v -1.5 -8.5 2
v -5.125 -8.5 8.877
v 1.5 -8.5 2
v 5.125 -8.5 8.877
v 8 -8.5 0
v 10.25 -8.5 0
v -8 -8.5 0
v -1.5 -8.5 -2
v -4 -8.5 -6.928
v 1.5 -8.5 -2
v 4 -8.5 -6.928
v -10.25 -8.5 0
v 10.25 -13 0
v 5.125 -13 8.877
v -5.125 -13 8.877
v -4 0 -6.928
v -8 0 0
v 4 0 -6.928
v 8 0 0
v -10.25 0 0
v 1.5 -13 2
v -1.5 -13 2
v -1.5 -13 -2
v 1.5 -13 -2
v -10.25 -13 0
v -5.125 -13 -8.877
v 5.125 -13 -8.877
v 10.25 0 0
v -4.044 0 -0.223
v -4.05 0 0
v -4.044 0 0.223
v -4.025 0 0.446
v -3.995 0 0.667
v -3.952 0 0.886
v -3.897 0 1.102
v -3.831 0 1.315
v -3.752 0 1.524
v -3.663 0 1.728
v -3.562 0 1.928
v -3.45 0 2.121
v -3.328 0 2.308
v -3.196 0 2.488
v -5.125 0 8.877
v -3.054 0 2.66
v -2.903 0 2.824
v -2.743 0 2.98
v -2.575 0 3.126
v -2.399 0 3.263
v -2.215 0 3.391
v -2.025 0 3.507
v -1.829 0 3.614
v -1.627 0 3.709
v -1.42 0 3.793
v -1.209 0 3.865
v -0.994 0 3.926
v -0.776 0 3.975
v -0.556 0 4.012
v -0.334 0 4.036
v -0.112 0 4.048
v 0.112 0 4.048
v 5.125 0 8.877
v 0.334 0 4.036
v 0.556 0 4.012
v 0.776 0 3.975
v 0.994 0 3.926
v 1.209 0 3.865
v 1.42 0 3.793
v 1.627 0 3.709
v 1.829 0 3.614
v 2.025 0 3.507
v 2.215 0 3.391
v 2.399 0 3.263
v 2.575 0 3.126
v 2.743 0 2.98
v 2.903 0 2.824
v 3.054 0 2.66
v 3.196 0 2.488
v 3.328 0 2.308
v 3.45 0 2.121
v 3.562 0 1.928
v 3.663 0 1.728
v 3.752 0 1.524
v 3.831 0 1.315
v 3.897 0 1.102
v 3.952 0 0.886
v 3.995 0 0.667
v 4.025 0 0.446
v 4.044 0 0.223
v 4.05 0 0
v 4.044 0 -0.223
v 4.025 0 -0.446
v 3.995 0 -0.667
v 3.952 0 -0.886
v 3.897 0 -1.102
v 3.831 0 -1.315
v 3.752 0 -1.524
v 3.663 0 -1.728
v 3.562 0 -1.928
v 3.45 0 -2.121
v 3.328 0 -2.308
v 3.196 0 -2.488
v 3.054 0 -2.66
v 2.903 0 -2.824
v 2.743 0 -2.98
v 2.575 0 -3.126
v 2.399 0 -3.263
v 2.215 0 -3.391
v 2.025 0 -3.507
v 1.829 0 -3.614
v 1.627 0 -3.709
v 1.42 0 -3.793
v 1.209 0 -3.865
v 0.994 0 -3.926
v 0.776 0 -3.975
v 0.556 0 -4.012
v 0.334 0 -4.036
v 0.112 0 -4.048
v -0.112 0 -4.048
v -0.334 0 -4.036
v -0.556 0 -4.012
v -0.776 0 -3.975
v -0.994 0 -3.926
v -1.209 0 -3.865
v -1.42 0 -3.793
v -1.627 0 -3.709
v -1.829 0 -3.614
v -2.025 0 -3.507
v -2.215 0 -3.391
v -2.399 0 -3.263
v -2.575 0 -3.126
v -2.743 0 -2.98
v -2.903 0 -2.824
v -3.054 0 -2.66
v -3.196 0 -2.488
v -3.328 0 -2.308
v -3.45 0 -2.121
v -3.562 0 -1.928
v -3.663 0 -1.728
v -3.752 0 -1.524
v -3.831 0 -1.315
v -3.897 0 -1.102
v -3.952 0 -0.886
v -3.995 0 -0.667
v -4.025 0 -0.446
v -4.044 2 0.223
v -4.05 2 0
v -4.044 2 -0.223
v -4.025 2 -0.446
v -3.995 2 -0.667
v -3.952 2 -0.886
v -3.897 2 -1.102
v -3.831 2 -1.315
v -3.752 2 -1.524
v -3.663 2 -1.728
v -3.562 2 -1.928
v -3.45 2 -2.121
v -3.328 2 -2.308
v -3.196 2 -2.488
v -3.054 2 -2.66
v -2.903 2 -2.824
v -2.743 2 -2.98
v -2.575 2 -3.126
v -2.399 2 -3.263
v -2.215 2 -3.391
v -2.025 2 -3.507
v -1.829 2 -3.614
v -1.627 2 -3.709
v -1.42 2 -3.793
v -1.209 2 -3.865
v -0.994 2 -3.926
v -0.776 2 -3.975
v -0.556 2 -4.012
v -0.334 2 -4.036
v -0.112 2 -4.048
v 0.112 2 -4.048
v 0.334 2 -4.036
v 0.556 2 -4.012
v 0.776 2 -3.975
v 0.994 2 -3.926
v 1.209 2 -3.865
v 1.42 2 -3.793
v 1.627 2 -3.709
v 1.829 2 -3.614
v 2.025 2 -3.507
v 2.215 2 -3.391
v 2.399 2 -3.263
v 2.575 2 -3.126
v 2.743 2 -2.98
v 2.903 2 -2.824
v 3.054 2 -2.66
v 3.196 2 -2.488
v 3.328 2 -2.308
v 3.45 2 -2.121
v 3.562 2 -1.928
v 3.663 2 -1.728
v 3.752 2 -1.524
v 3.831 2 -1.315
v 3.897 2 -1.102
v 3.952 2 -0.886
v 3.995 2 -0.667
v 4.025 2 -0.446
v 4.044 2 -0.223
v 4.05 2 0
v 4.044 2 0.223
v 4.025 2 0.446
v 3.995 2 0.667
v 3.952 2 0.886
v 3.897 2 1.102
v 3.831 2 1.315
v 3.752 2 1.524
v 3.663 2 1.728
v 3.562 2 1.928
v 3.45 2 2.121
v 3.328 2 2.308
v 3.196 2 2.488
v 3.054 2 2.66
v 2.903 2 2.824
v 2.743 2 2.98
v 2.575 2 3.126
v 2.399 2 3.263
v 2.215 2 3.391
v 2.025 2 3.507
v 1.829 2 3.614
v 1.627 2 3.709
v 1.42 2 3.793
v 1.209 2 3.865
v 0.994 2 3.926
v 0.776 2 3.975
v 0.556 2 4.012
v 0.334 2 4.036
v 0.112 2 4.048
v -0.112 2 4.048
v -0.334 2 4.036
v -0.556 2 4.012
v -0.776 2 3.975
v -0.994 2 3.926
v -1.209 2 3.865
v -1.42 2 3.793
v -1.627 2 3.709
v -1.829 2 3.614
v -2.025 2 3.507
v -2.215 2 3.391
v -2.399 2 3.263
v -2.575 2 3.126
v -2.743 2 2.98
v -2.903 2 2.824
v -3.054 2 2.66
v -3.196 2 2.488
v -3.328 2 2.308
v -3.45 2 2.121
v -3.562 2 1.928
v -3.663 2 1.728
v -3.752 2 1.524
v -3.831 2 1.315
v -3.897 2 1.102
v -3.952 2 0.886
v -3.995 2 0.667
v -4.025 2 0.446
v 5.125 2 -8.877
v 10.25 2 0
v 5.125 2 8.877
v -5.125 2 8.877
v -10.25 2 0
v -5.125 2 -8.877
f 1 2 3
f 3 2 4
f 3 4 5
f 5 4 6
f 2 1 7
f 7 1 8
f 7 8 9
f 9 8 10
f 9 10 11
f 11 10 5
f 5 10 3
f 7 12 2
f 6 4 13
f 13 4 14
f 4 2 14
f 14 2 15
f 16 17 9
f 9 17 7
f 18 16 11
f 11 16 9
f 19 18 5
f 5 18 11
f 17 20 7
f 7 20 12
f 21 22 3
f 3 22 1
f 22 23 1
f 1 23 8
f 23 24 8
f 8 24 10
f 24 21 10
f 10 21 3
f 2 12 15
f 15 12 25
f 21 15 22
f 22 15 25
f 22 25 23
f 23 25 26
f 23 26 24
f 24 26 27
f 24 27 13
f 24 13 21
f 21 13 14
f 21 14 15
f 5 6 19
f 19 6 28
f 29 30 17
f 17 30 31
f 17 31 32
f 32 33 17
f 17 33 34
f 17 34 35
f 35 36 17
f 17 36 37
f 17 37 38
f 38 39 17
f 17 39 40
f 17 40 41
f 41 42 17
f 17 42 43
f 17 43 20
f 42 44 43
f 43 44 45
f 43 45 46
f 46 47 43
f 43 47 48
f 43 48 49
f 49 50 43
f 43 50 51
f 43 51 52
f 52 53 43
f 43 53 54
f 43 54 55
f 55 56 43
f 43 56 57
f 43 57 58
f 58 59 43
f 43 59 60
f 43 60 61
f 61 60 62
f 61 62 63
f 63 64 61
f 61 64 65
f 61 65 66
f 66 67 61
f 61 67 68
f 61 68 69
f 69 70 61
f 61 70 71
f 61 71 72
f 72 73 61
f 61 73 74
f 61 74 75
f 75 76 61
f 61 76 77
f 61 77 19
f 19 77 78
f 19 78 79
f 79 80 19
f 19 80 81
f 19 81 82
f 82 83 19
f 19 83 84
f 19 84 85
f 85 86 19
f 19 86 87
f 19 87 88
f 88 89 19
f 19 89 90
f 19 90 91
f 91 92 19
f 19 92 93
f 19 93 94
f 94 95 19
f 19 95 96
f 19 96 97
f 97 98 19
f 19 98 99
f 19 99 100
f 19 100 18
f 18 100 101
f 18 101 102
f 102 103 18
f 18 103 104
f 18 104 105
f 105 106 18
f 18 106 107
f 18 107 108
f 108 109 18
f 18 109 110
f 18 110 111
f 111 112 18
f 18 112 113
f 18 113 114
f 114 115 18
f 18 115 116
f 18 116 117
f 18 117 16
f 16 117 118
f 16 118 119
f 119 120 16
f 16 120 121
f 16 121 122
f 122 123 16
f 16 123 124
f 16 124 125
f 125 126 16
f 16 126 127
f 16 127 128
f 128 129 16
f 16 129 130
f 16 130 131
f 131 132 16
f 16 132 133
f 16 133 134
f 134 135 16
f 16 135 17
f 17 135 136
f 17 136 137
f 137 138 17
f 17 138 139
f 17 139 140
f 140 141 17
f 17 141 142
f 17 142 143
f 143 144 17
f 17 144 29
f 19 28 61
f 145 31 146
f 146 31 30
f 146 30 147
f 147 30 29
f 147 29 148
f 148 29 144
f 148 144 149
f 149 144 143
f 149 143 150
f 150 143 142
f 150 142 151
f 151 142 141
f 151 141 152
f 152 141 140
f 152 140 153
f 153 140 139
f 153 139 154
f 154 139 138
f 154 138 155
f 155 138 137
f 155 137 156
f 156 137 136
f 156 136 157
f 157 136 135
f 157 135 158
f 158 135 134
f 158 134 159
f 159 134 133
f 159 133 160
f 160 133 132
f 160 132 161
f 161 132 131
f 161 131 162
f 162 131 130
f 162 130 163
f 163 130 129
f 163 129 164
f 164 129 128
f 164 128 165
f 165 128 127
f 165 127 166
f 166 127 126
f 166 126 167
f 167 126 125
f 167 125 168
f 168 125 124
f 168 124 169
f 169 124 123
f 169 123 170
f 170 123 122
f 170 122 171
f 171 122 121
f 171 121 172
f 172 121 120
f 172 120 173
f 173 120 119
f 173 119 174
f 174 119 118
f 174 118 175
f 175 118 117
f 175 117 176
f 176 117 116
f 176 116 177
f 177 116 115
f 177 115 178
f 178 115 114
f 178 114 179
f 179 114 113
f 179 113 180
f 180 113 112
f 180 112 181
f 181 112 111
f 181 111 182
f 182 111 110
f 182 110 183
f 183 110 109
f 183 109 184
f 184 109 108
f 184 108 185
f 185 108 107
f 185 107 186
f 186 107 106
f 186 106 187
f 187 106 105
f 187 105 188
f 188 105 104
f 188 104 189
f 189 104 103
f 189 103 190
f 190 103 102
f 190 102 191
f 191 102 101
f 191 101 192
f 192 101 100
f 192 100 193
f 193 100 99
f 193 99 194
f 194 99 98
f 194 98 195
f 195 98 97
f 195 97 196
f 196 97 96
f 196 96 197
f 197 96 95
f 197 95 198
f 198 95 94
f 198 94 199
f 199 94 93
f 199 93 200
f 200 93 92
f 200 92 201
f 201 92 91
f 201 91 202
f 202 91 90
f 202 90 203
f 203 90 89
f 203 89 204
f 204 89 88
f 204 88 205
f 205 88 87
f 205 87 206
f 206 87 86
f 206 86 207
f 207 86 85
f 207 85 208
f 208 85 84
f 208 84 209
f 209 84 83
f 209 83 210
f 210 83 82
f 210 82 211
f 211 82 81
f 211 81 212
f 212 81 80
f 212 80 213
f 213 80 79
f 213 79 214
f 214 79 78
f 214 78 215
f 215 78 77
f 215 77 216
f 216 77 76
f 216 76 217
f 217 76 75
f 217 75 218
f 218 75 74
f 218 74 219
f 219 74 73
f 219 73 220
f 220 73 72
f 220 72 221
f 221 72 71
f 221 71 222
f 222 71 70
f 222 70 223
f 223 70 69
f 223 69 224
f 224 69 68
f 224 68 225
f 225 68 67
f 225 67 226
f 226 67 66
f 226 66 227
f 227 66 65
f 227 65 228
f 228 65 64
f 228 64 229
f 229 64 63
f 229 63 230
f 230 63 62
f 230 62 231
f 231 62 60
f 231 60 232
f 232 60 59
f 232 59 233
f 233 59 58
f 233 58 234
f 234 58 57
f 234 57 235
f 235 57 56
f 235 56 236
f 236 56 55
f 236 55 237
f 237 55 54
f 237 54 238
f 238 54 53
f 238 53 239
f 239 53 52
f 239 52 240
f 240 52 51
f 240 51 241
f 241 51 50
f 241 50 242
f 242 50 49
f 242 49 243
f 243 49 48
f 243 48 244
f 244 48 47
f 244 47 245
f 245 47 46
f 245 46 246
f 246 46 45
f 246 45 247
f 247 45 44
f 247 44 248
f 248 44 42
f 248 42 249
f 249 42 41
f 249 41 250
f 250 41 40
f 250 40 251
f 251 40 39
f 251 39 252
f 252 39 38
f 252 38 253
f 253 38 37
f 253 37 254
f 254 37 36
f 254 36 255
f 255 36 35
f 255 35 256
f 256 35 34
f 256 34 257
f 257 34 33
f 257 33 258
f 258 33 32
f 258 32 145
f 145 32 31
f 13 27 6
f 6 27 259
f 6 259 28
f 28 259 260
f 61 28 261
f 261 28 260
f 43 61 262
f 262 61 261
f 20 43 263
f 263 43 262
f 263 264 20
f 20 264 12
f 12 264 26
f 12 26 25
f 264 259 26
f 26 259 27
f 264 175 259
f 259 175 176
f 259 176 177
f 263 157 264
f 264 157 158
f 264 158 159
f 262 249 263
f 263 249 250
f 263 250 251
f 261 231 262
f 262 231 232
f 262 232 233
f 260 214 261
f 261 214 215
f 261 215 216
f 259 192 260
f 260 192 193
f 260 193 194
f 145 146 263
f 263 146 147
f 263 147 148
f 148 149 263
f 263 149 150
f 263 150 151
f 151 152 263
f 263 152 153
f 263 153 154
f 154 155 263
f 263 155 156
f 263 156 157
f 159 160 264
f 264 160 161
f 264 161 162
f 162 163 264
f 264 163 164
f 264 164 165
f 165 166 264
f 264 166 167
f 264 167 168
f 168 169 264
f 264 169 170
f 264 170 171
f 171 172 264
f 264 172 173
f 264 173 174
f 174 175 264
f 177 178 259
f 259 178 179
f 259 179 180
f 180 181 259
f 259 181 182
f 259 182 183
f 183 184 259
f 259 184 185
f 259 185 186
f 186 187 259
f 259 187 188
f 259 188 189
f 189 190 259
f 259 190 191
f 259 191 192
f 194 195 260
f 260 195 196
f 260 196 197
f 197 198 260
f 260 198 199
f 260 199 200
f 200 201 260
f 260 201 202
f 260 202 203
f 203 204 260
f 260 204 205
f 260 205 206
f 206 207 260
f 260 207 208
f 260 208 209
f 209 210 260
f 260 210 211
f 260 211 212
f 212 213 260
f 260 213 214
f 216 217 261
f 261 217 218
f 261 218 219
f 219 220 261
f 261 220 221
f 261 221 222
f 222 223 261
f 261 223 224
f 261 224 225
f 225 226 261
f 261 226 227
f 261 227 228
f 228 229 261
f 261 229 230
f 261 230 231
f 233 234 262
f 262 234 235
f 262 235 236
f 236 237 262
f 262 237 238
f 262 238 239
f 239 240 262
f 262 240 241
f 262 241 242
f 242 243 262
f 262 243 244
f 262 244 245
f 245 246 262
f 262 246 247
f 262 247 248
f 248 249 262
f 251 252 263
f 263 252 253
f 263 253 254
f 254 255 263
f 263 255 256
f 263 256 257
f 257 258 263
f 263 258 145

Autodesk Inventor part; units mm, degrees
ref_plane "YZ Plane" through (0, 0, 0) normal (1, 0, 0) x (0, 1, 0)
ref_plane "XZ Plane" through (0, 0, 0) normal (0, 1, 0) x (-1, 0, 0)
ref_plane "XY Plane" through (0, 0, 0) normal (0, 0, 1) x (1, 0, 0)
sketch "Sketch1" plane through (0, 0, 0) normal (0, 1, 0) x (-1, 0, 0)
  circle A0 centre (0, 0) radius 4.05
  line L0 (0, 0) -> (7.25, 0)
  line L1 (7.25, 0) -> (3.625, -6.2787)
  line L2 (3.625, -6.2787) -> (-3.625, -6.2787)
  line L3 (-3.625, -6.2787) -> (-7.25, 0)
  line L4 (-7.25, 0) -> (-3.625, 6.2787)
  line L5 (-3.625, 6.2787) -> (3.625, 6.2787)
  line L6 (3.625, 6.2787) -> (7.25, 0)
  line L7 (7.25, 0) -> (10.25, 0)
  line L8 (10.25, 0) -> (5.125, -8.8768)
  line L9 (5.125, -8.8768) -> (-5.125, -8.8768)
  line L10 (-5.125, -8.8768) -> (-10.25, 0)
  line L11 (-10.25, 0) -> (-5.125, 8.8768)
  line L12 (-5.125, 8.8768) -> (5.125, 8.8768)
  line L13 (5.125, 8.8768) -> (10.25, 0)
  line L14 (-7.25, 0) -> (-10.25, 0)
  point P0 (0, 0)
  point P1 (-10.25, 0)
  dimension "d0" = 8.1
  dimension "d1" = 7.25
  dimension "d2" = 3
extrude "Extrusion1" add sketch "Sketch1" along normal blind 2
extrude "Extrusion2" add sketch "Sketch1" against normal blind 8 contours L7 L8 L9 L10 L14 L3 L2 L1
sketch "Sketch2" plane through (0, -8, 0) normal (0, -1, 0) x (1, 0, 0)
  circle A0 centre (0, 0) radius 4.05 projected
  line L0 (-10.25, 0) -> (-7.25, 0) projected
  line L1 (-7.25, 0) -> (-3.625, -6.2787) projected
  line L2 (-3.625, -6.2787) -> (3.625, -6.2787) projected
  line L3 (3.625, -6.2787) -> (7.25, 0) projected
  line L4 (7.25, 0) -> (10.25, 0) projected
  line L5 (5.125, 8.8768) -> (10.25, 0) projected
  line L6 (-5.125, 8.8768) -> (5.125, 8.8768) projected
  line L7 (-10.25, 0) -> (-5.125, 8.8768) projected
  line L8 (3.625, -6.2787) -> (-3.625, -6.2787) projected
  line L9 (-3.625, -6.2787) -> (-7.25, 0) projected
  line L10 (-7.25, 0) -> (-10.25, 0) projected
  line L11 (-10.25, 0) -> (-5.125, -8.8768) projected
  line L12 (-5.125, -8.8768) -> (5.125, -8.8768) projected
  line L13 (5.125, -8.8768) -> (10.25, 0) projected
  line L14 (10.25, 0) -> (7.25, 0) projected
  line L15 (7.25, 0) -> (3.625, -6.2787) projected
  line L16 (3.625, 6.2787) -> (-3.625, 6.2787) projected
  line L17 (-3.625, 6.2787) -> (-7.25, 0) projected
  line L18 (7.25, 0) -> (3.625, 6.2787) projected
extrude "Extrusion3" add sketch "Sketch2" along normal blind 5 contours A0 | L7 L6 L5 L4 L18 L16 L17 L0 | L0 L1 L2 L3 L4 L13 L12 L11 | L17 L16 L18 L3 L2 L1
sketch "Sketch3" plane through (0, -13, 0) normal (0, -1, 0) x (1, 0, 0)
  line L0 (0, 0) -> (1.5, 0)
  line L1 (1.5, 0) -> (-1.5, 0)
  line L2 (1.5, 0) -> (1.5, 2)
  line L3 (1.5, 2) -> (-1.5, 2)
  line L4 (-1.5, 2) -> (-1.5, -2)
  line L5 (-1.5, -2) -> (1.5, -2)
  line L6 (1.5, -2) -> (1.5, 0)
  line L7 (5.125, 8.8768) -> (-5.125, 8.8768) projected
  line L8 (-5.125, 8.8768) -> (-10.25, 0) projected
  line L9 (-10.25, 0) -> (-5.125, -8.8768) projected
  line L10 (-5.125, -8.8768) -> (5.125, -8.8768) projected
  line L11 (5.125, -8.8768) -> (10.25, 0) projected
  line L12 (10.25, 0) -> (5.125, 8.8768) projected
  dimension "d9" = 1.5
  dimension "d10" = 3
  dimension "d11" = 2
  dimension "d12" = 3
  dimension "d13" = 4
extrude "Extrusion4" cut sketch "Sketch3" against normal blind 4.5 contours L1 L4 L3 L2 L0 | L0 L6 L5 L4 L1
sketch "Sketch5" plane through (0, -8, 0) normal (0, 1, 0) x (1, 0, 0)
  circle A0 centre (0, 0) radius 4.05 projected
  line L0 (-10.25, 0) -> (-7.25, 0) projected
  line L1 (-7.25, 0) -> (-3.625, 6.2787) projected
  line L2 (-3.625, 6.2787) -> (3.625, 6.2787) projected
  line L3 (3.625, 6.2787) -> (7.25, 0) projected
  line L4 (7.25, 0) -> (10.25, 0) projected
  line L5 (5.125, -8.8768) -> (10.25, 0) projected
  line L6 (-5.125, -8.8768) -> (5.125, -8.8768) projected
  line L7 (-10.25, 0) -> (-5.125, -8.8768) projected
  line L8 (3.625, 6.2787) -> (-3.625, 6.2787) projected
  line L9 (3.625, 6.2787) -> (4, 6.9282)
  line L10 (4, 6.9282) -> (8, 0)
  line L11 (8, 0) -> (4, -6.9282)
  line L12 (4, -6.9282) -> (-4, -6.9282)
  line L13 (-4, -6.9282) -> (-8, 0)
  line L14 (-8, 0) -> (-4, 6.9282)
  line L15 (-4, 6.9282) -> (4, 6.9282)
  point P0 (8, 0)
  point P1 (-8, 0)
  dimension "d19" = 0.75
extrude "Extrusion6" cut sketch "Sketch5" along normal up to surface (8 mm away) contours L14 L15 L9 L2 L1 L0 | L10 L4 L3 L9
sketch "Sketch6" plane through (0, -8, 0) normal (0, 1, 0) x (1, 0, 0)
  line L0 (-8, 0) -> (-10.25, 0) projected
  line L1 (-5.125, -8.8768) -> (-10.25, 0) projected
  line L2 (5.125, -8.8768) -> (-5.125, -8.8768) projected
  line L3 (10.25, 0) -> (5.125, -8.8768) projected
  line L4 (10.25, 0) -> (8, 0) projected
  line L5 (8, 0) -> (4, 6.9282) projected
  line L6 (4, 6.9282) -> (-4, 6.9282) projected
  line L7 (-4, 6.9282) -> (-8, 0) projected
  point P0 (0, 0)
extrude "Extrusion7" cut sketch "Sketch6" against normal up to surface (0.5 mm away)
properties part number "encoder_magnet_socket"
